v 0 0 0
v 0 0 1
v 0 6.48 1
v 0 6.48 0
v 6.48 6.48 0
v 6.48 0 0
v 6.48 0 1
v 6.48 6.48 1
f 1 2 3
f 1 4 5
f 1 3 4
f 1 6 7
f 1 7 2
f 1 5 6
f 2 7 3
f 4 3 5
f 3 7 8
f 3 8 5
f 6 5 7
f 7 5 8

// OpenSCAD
/* Warning, this is a very basic generator with a lot of approximation 
input data : [CDFP, SGC, 6.48x6.48mm, 10, , B, C04-25641B]
generated by com.zoubworld.electronics.cad.model3d.Basic
Date : Sun Feb 15 10:50:49 CET 2026
*/

//body
color("black")
translate([0,0,0])
cube([6.48,6.48,1.0], center=false);
